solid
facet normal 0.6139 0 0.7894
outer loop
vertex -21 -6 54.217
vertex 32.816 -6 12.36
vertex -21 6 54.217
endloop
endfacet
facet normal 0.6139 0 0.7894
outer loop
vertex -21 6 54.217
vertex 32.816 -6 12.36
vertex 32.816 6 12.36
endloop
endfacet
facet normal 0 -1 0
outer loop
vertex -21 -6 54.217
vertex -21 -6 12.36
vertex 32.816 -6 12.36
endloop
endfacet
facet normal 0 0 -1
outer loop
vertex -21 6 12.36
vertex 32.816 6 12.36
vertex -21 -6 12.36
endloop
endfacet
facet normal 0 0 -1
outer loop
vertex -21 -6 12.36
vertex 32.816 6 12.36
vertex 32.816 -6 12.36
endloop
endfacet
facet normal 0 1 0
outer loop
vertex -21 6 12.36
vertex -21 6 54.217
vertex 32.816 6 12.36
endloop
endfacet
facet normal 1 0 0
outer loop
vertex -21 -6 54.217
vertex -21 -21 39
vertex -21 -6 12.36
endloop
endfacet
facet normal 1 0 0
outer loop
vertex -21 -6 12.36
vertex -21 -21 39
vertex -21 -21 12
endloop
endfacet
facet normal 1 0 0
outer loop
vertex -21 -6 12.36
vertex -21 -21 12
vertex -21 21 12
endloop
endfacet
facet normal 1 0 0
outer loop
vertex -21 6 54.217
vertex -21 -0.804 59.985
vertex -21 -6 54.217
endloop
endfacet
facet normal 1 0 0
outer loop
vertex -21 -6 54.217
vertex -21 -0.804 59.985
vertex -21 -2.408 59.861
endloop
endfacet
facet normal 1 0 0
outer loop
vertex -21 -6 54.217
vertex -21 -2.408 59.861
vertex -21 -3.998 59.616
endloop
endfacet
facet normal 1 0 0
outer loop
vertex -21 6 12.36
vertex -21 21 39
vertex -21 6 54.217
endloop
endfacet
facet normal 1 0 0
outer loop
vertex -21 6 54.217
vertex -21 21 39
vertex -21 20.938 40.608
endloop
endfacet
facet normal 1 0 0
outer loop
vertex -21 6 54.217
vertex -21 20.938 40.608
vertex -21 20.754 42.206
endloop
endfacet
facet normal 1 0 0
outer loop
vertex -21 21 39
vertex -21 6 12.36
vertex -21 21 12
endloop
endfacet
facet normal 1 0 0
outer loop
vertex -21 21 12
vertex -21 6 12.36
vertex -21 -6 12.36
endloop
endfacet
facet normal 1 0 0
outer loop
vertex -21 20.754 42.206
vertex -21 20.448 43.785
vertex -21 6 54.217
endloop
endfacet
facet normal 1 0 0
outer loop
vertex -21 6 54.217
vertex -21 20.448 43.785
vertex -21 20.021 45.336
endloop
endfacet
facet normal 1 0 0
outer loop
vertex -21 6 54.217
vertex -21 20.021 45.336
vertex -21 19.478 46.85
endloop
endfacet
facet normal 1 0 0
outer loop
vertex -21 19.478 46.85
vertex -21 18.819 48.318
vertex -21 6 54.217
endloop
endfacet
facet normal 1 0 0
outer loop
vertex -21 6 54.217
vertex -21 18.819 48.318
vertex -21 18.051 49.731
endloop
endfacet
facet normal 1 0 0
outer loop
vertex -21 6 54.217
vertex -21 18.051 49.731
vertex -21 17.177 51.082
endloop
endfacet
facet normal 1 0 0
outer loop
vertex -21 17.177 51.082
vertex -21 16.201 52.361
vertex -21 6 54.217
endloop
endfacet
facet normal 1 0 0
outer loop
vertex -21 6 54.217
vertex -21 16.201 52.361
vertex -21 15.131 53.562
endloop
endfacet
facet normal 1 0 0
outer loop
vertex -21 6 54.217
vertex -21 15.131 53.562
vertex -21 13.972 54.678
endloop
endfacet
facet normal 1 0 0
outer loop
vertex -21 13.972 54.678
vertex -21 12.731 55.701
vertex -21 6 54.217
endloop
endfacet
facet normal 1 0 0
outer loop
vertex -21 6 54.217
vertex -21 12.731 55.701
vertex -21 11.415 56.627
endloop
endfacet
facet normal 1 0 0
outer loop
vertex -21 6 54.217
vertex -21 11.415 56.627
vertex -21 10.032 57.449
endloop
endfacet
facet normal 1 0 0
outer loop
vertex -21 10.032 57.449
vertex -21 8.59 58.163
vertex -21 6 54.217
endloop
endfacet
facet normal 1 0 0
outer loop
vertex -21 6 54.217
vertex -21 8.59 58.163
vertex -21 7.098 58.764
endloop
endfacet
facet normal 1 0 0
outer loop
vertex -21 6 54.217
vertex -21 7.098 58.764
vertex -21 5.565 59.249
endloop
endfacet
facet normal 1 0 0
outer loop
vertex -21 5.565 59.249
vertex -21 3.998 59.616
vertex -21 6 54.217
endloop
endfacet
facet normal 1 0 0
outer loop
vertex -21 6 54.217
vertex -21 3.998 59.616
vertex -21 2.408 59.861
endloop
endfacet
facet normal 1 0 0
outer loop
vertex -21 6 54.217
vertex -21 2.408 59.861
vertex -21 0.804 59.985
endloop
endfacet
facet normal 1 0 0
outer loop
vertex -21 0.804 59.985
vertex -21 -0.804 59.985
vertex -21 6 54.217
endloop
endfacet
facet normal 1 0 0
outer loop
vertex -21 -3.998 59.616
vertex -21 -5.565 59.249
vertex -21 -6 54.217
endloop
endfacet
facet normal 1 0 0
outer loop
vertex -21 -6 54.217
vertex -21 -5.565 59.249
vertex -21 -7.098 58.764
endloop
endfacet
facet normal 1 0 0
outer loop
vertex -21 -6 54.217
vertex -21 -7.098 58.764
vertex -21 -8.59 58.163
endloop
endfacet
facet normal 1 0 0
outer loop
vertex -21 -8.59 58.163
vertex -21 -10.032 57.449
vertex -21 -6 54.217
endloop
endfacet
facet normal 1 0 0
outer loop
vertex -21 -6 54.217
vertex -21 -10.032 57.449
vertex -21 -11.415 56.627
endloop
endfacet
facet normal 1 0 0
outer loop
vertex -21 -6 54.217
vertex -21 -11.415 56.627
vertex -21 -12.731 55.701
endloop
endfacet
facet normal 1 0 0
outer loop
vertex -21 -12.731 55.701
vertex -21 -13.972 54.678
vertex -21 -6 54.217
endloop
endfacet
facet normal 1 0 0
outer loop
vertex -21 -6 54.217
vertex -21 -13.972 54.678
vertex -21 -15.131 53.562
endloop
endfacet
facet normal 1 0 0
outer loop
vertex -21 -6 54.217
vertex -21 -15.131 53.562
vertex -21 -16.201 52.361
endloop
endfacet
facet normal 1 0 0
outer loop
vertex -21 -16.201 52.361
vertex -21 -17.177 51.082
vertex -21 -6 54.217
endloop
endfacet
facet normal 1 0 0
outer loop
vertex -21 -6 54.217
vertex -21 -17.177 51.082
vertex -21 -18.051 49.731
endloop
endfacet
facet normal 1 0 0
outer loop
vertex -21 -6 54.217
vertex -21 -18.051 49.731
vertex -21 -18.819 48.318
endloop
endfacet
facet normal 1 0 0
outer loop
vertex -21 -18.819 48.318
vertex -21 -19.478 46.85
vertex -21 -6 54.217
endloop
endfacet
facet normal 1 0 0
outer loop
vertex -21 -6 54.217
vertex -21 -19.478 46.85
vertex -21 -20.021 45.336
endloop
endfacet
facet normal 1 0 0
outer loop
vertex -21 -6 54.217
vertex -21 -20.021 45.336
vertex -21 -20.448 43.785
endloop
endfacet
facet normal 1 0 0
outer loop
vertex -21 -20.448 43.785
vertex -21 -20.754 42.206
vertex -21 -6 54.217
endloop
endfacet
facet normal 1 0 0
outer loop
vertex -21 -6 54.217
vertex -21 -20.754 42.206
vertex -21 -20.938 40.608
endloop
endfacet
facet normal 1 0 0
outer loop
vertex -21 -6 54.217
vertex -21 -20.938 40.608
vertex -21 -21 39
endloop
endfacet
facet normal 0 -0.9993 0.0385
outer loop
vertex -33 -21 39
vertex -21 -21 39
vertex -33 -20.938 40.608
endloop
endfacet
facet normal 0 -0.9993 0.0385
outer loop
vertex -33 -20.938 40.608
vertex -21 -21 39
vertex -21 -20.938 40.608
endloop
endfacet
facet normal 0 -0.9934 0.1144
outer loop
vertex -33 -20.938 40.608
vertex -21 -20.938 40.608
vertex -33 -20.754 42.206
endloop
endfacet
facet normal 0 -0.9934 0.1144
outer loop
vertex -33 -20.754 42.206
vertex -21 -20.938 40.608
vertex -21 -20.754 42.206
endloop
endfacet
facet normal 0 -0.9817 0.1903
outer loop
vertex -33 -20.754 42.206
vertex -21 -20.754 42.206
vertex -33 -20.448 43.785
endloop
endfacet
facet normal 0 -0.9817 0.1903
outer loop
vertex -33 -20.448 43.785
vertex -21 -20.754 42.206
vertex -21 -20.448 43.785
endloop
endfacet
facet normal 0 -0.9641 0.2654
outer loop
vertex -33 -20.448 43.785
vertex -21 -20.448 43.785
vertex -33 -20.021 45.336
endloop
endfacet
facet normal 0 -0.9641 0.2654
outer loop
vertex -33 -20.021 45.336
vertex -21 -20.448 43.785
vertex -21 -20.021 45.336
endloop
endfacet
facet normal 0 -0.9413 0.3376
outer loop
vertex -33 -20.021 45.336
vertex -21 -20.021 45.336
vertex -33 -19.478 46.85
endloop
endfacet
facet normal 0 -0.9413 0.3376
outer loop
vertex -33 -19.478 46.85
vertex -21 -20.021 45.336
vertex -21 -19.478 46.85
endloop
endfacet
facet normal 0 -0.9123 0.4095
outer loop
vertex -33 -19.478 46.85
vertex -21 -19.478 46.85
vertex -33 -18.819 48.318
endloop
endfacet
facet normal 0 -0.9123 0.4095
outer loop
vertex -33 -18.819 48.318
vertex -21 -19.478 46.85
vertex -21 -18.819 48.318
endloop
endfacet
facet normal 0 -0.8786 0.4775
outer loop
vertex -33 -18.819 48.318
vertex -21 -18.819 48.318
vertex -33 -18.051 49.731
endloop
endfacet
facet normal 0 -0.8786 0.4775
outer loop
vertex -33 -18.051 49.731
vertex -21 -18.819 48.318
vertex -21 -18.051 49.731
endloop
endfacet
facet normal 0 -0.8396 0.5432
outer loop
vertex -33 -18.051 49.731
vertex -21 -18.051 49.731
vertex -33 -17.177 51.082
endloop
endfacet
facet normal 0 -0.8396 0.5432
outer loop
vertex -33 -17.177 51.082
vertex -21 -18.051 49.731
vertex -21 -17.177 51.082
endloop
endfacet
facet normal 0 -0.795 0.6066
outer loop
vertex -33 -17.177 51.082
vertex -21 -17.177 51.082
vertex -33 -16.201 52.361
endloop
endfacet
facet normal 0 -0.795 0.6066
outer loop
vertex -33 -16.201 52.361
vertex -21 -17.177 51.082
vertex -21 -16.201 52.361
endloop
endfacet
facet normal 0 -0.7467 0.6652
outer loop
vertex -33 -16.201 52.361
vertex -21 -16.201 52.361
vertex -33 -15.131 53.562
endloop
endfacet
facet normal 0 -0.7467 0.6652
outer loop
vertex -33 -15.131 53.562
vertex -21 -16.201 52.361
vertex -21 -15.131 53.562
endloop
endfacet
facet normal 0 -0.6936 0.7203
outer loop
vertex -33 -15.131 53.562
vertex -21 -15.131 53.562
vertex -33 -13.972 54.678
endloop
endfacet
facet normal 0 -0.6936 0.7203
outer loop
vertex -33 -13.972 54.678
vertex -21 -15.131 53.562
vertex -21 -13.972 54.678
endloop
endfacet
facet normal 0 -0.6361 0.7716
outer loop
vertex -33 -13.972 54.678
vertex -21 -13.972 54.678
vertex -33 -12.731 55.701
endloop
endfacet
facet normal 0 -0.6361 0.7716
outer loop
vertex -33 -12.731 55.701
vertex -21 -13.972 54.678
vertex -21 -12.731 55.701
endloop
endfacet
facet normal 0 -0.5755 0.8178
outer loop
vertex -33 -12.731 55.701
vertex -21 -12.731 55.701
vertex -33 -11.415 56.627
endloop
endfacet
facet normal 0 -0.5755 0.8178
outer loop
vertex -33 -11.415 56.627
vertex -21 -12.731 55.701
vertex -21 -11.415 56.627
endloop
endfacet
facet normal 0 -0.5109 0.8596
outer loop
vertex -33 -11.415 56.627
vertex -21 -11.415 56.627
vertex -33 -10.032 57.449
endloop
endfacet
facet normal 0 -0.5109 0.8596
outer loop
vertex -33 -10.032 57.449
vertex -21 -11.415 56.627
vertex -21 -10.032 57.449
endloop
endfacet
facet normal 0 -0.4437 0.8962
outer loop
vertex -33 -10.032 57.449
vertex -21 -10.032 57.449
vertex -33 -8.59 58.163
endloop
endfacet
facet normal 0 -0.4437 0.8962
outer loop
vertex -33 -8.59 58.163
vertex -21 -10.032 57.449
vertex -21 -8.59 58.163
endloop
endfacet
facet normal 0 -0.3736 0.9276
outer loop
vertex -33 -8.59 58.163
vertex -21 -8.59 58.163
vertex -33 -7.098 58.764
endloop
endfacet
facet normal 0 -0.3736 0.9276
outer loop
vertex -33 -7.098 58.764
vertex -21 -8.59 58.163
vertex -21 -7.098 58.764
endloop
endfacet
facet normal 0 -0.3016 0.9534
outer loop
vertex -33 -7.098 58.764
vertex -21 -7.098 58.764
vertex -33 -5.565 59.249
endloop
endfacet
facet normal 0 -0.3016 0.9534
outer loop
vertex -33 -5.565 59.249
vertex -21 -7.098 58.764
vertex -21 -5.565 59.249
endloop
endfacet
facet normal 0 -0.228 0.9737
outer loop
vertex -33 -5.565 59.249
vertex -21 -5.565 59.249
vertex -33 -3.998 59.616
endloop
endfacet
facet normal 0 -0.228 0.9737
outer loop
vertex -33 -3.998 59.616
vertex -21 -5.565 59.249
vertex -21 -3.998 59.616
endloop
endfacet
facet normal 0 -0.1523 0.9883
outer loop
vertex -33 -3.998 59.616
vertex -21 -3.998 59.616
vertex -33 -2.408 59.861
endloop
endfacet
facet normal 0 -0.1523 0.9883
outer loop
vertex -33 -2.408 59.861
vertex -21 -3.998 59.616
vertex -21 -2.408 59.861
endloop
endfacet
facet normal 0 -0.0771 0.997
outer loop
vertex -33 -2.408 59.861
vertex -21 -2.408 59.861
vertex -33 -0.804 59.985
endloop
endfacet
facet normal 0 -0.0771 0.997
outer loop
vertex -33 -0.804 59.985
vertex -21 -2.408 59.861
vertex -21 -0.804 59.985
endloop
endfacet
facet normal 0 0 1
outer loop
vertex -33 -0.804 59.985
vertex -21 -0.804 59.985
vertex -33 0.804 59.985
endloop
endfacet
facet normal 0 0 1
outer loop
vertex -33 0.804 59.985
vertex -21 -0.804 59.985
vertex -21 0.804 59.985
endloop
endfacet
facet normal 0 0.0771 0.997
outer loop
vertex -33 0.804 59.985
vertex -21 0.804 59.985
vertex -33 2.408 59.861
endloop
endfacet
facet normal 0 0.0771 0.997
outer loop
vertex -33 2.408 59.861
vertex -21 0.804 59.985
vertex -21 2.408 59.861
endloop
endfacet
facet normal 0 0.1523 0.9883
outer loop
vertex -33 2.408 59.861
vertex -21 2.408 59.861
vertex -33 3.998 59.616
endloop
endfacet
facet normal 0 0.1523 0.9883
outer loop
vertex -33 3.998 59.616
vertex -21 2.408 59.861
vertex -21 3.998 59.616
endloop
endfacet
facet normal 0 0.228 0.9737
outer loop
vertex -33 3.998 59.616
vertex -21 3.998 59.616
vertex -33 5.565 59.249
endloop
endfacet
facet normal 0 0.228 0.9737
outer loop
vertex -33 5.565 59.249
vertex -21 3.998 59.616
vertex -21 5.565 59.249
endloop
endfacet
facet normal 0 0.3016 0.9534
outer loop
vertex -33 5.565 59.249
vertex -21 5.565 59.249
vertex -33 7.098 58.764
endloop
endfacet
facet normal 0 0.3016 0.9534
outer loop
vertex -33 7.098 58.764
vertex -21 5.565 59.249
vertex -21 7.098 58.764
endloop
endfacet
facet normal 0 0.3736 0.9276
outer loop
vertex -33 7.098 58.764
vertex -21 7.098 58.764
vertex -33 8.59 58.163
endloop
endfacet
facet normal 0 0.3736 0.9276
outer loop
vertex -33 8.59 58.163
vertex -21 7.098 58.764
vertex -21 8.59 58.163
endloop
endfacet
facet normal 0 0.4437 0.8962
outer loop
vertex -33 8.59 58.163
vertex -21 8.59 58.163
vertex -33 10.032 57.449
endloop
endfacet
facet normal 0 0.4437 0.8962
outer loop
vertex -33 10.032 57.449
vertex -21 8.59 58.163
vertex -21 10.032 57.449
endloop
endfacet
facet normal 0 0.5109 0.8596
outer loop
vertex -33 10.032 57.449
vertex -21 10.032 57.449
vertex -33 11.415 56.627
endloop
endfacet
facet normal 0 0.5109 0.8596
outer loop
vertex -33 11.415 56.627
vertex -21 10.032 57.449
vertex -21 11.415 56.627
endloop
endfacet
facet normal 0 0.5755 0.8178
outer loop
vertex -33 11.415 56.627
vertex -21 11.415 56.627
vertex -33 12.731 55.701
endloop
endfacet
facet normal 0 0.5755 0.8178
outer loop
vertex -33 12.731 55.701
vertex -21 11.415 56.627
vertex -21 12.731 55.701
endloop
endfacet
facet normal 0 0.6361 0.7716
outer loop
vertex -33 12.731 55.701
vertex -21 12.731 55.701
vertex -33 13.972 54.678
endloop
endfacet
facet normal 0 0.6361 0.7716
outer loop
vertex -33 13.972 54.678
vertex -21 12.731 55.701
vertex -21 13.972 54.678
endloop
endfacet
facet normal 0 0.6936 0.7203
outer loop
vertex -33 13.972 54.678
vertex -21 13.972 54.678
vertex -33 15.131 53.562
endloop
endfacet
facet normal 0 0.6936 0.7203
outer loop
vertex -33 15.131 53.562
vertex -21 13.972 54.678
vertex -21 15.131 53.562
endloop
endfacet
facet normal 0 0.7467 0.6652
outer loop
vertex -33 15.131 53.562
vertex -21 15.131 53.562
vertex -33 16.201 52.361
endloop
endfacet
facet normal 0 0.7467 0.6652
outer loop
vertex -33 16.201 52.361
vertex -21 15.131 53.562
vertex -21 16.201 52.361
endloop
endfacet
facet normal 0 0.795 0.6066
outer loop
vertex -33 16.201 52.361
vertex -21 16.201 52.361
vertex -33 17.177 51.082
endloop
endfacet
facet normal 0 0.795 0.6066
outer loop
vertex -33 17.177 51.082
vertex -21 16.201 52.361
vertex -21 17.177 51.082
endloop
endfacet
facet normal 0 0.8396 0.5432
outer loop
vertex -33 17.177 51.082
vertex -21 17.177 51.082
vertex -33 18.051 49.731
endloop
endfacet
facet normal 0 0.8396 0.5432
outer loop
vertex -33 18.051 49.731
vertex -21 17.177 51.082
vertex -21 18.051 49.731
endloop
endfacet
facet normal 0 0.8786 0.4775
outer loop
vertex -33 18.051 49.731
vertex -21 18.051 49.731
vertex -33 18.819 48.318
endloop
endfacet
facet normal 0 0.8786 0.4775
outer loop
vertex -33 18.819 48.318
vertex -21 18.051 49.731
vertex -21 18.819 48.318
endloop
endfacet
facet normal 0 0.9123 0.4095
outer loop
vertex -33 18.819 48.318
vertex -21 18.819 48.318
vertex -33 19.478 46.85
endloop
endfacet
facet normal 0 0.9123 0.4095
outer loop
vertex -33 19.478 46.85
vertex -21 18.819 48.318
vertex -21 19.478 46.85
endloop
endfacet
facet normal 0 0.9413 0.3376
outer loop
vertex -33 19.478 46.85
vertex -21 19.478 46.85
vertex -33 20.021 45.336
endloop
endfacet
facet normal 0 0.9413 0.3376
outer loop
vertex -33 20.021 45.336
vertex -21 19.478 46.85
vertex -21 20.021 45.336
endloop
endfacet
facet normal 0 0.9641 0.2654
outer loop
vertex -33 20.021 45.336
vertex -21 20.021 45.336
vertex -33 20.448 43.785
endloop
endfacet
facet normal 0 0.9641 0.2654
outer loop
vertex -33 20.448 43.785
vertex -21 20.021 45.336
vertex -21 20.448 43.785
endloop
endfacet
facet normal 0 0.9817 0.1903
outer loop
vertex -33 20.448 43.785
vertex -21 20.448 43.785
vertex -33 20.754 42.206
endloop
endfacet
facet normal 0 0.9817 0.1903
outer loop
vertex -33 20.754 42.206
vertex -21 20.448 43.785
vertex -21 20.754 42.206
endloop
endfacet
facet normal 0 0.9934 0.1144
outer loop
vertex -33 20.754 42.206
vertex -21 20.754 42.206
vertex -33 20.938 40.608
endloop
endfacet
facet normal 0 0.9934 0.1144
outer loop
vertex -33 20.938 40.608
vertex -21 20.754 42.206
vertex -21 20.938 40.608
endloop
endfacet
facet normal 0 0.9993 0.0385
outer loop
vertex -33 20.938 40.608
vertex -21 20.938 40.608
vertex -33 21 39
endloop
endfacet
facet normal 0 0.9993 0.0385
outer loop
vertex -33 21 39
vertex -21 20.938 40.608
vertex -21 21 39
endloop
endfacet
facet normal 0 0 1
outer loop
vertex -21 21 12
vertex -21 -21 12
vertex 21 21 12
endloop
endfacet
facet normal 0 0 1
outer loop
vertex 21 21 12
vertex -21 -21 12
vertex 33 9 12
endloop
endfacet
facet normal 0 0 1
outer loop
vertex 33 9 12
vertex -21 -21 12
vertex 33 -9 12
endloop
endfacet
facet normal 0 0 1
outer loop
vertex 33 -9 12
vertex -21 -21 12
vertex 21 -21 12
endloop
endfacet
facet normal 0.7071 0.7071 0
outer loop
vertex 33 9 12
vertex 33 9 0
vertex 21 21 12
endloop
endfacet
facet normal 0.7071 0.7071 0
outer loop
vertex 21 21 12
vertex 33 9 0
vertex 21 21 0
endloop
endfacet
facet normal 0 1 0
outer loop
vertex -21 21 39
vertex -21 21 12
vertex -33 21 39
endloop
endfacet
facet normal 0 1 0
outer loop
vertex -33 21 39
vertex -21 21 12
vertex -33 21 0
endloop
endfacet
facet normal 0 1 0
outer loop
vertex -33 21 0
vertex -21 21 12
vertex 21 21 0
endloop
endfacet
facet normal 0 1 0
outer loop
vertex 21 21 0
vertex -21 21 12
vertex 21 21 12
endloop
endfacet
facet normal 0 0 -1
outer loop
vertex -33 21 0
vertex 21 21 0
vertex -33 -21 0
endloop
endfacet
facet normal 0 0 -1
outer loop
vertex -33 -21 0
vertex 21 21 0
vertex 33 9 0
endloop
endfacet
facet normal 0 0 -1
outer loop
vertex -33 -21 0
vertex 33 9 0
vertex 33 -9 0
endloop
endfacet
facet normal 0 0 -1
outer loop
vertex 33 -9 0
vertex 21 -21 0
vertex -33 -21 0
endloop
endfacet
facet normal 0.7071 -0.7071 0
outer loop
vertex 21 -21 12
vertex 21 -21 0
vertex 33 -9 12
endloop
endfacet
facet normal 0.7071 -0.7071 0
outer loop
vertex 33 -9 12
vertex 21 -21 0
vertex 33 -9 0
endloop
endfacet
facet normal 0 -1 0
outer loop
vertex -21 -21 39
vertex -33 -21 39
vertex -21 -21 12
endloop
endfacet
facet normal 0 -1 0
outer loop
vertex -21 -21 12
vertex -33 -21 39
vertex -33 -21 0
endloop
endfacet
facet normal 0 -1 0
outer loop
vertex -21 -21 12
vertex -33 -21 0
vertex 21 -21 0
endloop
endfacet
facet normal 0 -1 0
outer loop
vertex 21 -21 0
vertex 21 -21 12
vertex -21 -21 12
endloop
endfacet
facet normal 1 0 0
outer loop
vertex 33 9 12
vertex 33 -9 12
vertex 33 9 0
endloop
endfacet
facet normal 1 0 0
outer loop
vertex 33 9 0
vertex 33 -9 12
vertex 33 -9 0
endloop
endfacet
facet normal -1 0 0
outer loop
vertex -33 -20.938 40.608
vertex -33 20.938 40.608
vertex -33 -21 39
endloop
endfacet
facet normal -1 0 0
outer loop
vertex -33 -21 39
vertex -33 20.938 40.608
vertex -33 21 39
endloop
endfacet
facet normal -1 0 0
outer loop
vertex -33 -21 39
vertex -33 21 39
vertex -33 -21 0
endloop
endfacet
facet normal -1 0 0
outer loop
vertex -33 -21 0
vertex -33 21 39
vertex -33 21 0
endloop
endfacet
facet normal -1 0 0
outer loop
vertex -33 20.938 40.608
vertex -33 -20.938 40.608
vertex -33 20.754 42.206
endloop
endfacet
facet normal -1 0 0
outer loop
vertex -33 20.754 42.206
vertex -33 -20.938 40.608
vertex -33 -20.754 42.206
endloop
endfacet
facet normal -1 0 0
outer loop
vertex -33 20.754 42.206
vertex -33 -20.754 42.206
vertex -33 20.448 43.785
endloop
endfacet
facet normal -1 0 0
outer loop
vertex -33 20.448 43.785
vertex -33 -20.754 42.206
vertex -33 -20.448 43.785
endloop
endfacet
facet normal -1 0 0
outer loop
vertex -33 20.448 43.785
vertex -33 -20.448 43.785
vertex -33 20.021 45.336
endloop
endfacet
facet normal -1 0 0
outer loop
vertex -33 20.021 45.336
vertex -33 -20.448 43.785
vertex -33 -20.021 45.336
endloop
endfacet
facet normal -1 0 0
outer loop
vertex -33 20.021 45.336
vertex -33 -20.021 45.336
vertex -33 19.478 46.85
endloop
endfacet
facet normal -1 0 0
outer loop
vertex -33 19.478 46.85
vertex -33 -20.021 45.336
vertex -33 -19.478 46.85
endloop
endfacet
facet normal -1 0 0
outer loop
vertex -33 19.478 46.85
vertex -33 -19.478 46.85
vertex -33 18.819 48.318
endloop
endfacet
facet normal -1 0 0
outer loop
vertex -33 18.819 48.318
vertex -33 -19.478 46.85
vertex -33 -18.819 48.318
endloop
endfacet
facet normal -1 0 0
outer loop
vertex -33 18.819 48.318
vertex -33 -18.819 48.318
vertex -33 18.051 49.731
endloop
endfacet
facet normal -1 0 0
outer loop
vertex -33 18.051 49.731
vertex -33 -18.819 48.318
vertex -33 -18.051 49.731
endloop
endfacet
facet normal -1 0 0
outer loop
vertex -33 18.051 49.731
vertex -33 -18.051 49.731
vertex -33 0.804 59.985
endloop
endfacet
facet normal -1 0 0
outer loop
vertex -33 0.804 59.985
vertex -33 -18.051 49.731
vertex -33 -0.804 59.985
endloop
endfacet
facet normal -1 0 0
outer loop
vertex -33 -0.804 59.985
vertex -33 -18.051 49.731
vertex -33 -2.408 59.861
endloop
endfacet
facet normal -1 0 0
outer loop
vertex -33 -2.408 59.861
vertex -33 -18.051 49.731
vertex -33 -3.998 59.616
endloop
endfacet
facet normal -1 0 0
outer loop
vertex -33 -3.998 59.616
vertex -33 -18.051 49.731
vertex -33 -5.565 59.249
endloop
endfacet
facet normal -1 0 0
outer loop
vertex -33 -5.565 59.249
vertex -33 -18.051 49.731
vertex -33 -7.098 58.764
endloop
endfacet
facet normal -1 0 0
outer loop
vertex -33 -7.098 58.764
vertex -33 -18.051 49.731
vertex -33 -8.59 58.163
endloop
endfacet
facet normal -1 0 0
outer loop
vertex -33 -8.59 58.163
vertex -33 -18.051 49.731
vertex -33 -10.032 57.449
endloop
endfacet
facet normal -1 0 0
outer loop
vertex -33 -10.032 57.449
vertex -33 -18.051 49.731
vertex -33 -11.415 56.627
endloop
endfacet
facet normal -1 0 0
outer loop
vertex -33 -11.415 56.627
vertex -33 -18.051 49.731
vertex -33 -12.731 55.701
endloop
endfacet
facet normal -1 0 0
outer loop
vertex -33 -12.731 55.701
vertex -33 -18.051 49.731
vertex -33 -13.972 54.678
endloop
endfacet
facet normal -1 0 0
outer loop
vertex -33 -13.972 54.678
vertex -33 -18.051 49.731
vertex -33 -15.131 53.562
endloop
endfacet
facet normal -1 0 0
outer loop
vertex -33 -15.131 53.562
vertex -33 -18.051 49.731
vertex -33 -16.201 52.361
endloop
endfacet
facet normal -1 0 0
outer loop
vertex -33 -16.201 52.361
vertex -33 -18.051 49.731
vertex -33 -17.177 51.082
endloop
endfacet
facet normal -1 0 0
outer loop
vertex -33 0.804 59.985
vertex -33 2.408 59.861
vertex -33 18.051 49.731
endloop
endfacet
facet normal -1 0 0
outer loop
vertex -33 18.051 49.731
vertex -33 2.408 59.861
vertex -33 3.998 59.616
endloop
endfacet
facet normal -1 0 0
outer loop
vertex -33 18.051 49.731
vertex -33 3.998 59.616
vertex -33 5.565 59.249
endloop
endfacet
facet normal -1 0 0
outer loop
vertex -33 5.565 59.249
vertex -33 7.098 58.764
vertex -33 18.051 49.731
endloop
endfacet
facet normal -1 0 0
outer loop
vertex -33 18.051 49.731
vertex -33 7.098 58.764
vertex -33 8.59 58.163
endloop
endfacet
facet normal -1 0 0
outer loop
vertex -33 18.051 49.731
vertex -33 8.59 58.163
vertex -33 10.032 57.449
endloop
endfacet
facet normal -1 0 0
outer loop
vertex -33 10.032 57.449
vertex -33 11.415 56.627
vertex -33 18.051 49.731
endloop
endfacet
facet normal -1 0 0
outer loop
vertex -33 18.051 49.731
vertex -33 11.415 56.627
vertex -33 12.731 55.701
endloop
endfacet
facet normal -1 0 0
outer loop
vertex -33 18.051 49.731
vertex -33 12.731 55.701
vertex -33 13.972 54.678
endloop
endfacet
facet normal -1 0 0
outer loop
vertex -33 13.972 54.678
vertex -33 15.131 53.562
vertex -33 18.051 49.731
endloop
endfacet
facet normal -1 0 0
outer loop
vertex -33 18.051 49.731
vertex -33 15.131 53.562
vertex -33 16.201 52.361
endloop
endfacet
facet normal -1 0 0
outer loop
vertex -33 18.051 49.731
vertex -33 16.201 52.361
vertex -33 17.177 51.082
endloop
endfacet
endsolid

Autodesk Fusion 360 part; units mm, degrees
sketch "Sketch2" plane through (0, 0, 0) normal (0, 0, 1) x (1, 0, 0)
  line L0 (33, -21) -> (-33, -21)
  line L1 (-33, -21) -> (-33, 21)
  line L2 (-33, 21) -> (33, 21)
  line L3 (33, 21) -> (33, -21)
  line L4 (33, -21) -> (-33, 21) construction
  line L5 (-33, -21) -> (33, 21) construction
  dimension "d1" = 66
  dimension "d2" = 42
extrude "Extrude1" add sketch "Sketch2" along normal blind 12
chamfer "Chamfer1" distance 12 angle 45 2 edges at (33, -21, 6) (33, 21, 6)
sketch "Sketch3" plane through (0, 0, 12) normal (0, 0, 1) x (-1, 0, 0)
  line L0 (-33, -9) -> (-21, -21)
  line L1 (-21, -21) -> (33, -21)
  line L2 (33, -21) -> (33, 21)
  line L3 (33, 21) -> (-21, 21)
  line L4 (-21, 21) -> (-33, 9)
  line L5 (-33, 9) -> (-33, -9)
  line L6 (33, -21) -> (21, -21)
  line L7 (21, -21) -> (21, 21)
  line L8 (21, 21) -> (33, 21)
  line L9 (33, 21) -> (33, -21)
  dimension "d6" = 12
extrude "Extrude2" add sketch "Sketch3" along normal blind 48 contours L1 L2 L3 L6 L7 L8 L9
fillet "Fillet1" radius 21 2 edges at (-27, -21, 60) (-27, 21, 60)
sketch "Sketch4" plane through (0, 0, 0) normal (0, 1, 0) x (1, 0, 0)
  line L0 (-21.1838, -54.3604) -> (-21.1838, -12.3604)
  line L1 (-21.1838, -12.3604) -> (32.8162, -12.3604)
  line L2 (-21.1838, -54.3604) -> (32.8162, -12.3604)
  dimension "d11" = 42
  dimension "d12" = 54
extrude "Extrude3" add sketch "Sketch4" along normal mid plane 12
equation "d12 = 66 mm - 12 mm"
